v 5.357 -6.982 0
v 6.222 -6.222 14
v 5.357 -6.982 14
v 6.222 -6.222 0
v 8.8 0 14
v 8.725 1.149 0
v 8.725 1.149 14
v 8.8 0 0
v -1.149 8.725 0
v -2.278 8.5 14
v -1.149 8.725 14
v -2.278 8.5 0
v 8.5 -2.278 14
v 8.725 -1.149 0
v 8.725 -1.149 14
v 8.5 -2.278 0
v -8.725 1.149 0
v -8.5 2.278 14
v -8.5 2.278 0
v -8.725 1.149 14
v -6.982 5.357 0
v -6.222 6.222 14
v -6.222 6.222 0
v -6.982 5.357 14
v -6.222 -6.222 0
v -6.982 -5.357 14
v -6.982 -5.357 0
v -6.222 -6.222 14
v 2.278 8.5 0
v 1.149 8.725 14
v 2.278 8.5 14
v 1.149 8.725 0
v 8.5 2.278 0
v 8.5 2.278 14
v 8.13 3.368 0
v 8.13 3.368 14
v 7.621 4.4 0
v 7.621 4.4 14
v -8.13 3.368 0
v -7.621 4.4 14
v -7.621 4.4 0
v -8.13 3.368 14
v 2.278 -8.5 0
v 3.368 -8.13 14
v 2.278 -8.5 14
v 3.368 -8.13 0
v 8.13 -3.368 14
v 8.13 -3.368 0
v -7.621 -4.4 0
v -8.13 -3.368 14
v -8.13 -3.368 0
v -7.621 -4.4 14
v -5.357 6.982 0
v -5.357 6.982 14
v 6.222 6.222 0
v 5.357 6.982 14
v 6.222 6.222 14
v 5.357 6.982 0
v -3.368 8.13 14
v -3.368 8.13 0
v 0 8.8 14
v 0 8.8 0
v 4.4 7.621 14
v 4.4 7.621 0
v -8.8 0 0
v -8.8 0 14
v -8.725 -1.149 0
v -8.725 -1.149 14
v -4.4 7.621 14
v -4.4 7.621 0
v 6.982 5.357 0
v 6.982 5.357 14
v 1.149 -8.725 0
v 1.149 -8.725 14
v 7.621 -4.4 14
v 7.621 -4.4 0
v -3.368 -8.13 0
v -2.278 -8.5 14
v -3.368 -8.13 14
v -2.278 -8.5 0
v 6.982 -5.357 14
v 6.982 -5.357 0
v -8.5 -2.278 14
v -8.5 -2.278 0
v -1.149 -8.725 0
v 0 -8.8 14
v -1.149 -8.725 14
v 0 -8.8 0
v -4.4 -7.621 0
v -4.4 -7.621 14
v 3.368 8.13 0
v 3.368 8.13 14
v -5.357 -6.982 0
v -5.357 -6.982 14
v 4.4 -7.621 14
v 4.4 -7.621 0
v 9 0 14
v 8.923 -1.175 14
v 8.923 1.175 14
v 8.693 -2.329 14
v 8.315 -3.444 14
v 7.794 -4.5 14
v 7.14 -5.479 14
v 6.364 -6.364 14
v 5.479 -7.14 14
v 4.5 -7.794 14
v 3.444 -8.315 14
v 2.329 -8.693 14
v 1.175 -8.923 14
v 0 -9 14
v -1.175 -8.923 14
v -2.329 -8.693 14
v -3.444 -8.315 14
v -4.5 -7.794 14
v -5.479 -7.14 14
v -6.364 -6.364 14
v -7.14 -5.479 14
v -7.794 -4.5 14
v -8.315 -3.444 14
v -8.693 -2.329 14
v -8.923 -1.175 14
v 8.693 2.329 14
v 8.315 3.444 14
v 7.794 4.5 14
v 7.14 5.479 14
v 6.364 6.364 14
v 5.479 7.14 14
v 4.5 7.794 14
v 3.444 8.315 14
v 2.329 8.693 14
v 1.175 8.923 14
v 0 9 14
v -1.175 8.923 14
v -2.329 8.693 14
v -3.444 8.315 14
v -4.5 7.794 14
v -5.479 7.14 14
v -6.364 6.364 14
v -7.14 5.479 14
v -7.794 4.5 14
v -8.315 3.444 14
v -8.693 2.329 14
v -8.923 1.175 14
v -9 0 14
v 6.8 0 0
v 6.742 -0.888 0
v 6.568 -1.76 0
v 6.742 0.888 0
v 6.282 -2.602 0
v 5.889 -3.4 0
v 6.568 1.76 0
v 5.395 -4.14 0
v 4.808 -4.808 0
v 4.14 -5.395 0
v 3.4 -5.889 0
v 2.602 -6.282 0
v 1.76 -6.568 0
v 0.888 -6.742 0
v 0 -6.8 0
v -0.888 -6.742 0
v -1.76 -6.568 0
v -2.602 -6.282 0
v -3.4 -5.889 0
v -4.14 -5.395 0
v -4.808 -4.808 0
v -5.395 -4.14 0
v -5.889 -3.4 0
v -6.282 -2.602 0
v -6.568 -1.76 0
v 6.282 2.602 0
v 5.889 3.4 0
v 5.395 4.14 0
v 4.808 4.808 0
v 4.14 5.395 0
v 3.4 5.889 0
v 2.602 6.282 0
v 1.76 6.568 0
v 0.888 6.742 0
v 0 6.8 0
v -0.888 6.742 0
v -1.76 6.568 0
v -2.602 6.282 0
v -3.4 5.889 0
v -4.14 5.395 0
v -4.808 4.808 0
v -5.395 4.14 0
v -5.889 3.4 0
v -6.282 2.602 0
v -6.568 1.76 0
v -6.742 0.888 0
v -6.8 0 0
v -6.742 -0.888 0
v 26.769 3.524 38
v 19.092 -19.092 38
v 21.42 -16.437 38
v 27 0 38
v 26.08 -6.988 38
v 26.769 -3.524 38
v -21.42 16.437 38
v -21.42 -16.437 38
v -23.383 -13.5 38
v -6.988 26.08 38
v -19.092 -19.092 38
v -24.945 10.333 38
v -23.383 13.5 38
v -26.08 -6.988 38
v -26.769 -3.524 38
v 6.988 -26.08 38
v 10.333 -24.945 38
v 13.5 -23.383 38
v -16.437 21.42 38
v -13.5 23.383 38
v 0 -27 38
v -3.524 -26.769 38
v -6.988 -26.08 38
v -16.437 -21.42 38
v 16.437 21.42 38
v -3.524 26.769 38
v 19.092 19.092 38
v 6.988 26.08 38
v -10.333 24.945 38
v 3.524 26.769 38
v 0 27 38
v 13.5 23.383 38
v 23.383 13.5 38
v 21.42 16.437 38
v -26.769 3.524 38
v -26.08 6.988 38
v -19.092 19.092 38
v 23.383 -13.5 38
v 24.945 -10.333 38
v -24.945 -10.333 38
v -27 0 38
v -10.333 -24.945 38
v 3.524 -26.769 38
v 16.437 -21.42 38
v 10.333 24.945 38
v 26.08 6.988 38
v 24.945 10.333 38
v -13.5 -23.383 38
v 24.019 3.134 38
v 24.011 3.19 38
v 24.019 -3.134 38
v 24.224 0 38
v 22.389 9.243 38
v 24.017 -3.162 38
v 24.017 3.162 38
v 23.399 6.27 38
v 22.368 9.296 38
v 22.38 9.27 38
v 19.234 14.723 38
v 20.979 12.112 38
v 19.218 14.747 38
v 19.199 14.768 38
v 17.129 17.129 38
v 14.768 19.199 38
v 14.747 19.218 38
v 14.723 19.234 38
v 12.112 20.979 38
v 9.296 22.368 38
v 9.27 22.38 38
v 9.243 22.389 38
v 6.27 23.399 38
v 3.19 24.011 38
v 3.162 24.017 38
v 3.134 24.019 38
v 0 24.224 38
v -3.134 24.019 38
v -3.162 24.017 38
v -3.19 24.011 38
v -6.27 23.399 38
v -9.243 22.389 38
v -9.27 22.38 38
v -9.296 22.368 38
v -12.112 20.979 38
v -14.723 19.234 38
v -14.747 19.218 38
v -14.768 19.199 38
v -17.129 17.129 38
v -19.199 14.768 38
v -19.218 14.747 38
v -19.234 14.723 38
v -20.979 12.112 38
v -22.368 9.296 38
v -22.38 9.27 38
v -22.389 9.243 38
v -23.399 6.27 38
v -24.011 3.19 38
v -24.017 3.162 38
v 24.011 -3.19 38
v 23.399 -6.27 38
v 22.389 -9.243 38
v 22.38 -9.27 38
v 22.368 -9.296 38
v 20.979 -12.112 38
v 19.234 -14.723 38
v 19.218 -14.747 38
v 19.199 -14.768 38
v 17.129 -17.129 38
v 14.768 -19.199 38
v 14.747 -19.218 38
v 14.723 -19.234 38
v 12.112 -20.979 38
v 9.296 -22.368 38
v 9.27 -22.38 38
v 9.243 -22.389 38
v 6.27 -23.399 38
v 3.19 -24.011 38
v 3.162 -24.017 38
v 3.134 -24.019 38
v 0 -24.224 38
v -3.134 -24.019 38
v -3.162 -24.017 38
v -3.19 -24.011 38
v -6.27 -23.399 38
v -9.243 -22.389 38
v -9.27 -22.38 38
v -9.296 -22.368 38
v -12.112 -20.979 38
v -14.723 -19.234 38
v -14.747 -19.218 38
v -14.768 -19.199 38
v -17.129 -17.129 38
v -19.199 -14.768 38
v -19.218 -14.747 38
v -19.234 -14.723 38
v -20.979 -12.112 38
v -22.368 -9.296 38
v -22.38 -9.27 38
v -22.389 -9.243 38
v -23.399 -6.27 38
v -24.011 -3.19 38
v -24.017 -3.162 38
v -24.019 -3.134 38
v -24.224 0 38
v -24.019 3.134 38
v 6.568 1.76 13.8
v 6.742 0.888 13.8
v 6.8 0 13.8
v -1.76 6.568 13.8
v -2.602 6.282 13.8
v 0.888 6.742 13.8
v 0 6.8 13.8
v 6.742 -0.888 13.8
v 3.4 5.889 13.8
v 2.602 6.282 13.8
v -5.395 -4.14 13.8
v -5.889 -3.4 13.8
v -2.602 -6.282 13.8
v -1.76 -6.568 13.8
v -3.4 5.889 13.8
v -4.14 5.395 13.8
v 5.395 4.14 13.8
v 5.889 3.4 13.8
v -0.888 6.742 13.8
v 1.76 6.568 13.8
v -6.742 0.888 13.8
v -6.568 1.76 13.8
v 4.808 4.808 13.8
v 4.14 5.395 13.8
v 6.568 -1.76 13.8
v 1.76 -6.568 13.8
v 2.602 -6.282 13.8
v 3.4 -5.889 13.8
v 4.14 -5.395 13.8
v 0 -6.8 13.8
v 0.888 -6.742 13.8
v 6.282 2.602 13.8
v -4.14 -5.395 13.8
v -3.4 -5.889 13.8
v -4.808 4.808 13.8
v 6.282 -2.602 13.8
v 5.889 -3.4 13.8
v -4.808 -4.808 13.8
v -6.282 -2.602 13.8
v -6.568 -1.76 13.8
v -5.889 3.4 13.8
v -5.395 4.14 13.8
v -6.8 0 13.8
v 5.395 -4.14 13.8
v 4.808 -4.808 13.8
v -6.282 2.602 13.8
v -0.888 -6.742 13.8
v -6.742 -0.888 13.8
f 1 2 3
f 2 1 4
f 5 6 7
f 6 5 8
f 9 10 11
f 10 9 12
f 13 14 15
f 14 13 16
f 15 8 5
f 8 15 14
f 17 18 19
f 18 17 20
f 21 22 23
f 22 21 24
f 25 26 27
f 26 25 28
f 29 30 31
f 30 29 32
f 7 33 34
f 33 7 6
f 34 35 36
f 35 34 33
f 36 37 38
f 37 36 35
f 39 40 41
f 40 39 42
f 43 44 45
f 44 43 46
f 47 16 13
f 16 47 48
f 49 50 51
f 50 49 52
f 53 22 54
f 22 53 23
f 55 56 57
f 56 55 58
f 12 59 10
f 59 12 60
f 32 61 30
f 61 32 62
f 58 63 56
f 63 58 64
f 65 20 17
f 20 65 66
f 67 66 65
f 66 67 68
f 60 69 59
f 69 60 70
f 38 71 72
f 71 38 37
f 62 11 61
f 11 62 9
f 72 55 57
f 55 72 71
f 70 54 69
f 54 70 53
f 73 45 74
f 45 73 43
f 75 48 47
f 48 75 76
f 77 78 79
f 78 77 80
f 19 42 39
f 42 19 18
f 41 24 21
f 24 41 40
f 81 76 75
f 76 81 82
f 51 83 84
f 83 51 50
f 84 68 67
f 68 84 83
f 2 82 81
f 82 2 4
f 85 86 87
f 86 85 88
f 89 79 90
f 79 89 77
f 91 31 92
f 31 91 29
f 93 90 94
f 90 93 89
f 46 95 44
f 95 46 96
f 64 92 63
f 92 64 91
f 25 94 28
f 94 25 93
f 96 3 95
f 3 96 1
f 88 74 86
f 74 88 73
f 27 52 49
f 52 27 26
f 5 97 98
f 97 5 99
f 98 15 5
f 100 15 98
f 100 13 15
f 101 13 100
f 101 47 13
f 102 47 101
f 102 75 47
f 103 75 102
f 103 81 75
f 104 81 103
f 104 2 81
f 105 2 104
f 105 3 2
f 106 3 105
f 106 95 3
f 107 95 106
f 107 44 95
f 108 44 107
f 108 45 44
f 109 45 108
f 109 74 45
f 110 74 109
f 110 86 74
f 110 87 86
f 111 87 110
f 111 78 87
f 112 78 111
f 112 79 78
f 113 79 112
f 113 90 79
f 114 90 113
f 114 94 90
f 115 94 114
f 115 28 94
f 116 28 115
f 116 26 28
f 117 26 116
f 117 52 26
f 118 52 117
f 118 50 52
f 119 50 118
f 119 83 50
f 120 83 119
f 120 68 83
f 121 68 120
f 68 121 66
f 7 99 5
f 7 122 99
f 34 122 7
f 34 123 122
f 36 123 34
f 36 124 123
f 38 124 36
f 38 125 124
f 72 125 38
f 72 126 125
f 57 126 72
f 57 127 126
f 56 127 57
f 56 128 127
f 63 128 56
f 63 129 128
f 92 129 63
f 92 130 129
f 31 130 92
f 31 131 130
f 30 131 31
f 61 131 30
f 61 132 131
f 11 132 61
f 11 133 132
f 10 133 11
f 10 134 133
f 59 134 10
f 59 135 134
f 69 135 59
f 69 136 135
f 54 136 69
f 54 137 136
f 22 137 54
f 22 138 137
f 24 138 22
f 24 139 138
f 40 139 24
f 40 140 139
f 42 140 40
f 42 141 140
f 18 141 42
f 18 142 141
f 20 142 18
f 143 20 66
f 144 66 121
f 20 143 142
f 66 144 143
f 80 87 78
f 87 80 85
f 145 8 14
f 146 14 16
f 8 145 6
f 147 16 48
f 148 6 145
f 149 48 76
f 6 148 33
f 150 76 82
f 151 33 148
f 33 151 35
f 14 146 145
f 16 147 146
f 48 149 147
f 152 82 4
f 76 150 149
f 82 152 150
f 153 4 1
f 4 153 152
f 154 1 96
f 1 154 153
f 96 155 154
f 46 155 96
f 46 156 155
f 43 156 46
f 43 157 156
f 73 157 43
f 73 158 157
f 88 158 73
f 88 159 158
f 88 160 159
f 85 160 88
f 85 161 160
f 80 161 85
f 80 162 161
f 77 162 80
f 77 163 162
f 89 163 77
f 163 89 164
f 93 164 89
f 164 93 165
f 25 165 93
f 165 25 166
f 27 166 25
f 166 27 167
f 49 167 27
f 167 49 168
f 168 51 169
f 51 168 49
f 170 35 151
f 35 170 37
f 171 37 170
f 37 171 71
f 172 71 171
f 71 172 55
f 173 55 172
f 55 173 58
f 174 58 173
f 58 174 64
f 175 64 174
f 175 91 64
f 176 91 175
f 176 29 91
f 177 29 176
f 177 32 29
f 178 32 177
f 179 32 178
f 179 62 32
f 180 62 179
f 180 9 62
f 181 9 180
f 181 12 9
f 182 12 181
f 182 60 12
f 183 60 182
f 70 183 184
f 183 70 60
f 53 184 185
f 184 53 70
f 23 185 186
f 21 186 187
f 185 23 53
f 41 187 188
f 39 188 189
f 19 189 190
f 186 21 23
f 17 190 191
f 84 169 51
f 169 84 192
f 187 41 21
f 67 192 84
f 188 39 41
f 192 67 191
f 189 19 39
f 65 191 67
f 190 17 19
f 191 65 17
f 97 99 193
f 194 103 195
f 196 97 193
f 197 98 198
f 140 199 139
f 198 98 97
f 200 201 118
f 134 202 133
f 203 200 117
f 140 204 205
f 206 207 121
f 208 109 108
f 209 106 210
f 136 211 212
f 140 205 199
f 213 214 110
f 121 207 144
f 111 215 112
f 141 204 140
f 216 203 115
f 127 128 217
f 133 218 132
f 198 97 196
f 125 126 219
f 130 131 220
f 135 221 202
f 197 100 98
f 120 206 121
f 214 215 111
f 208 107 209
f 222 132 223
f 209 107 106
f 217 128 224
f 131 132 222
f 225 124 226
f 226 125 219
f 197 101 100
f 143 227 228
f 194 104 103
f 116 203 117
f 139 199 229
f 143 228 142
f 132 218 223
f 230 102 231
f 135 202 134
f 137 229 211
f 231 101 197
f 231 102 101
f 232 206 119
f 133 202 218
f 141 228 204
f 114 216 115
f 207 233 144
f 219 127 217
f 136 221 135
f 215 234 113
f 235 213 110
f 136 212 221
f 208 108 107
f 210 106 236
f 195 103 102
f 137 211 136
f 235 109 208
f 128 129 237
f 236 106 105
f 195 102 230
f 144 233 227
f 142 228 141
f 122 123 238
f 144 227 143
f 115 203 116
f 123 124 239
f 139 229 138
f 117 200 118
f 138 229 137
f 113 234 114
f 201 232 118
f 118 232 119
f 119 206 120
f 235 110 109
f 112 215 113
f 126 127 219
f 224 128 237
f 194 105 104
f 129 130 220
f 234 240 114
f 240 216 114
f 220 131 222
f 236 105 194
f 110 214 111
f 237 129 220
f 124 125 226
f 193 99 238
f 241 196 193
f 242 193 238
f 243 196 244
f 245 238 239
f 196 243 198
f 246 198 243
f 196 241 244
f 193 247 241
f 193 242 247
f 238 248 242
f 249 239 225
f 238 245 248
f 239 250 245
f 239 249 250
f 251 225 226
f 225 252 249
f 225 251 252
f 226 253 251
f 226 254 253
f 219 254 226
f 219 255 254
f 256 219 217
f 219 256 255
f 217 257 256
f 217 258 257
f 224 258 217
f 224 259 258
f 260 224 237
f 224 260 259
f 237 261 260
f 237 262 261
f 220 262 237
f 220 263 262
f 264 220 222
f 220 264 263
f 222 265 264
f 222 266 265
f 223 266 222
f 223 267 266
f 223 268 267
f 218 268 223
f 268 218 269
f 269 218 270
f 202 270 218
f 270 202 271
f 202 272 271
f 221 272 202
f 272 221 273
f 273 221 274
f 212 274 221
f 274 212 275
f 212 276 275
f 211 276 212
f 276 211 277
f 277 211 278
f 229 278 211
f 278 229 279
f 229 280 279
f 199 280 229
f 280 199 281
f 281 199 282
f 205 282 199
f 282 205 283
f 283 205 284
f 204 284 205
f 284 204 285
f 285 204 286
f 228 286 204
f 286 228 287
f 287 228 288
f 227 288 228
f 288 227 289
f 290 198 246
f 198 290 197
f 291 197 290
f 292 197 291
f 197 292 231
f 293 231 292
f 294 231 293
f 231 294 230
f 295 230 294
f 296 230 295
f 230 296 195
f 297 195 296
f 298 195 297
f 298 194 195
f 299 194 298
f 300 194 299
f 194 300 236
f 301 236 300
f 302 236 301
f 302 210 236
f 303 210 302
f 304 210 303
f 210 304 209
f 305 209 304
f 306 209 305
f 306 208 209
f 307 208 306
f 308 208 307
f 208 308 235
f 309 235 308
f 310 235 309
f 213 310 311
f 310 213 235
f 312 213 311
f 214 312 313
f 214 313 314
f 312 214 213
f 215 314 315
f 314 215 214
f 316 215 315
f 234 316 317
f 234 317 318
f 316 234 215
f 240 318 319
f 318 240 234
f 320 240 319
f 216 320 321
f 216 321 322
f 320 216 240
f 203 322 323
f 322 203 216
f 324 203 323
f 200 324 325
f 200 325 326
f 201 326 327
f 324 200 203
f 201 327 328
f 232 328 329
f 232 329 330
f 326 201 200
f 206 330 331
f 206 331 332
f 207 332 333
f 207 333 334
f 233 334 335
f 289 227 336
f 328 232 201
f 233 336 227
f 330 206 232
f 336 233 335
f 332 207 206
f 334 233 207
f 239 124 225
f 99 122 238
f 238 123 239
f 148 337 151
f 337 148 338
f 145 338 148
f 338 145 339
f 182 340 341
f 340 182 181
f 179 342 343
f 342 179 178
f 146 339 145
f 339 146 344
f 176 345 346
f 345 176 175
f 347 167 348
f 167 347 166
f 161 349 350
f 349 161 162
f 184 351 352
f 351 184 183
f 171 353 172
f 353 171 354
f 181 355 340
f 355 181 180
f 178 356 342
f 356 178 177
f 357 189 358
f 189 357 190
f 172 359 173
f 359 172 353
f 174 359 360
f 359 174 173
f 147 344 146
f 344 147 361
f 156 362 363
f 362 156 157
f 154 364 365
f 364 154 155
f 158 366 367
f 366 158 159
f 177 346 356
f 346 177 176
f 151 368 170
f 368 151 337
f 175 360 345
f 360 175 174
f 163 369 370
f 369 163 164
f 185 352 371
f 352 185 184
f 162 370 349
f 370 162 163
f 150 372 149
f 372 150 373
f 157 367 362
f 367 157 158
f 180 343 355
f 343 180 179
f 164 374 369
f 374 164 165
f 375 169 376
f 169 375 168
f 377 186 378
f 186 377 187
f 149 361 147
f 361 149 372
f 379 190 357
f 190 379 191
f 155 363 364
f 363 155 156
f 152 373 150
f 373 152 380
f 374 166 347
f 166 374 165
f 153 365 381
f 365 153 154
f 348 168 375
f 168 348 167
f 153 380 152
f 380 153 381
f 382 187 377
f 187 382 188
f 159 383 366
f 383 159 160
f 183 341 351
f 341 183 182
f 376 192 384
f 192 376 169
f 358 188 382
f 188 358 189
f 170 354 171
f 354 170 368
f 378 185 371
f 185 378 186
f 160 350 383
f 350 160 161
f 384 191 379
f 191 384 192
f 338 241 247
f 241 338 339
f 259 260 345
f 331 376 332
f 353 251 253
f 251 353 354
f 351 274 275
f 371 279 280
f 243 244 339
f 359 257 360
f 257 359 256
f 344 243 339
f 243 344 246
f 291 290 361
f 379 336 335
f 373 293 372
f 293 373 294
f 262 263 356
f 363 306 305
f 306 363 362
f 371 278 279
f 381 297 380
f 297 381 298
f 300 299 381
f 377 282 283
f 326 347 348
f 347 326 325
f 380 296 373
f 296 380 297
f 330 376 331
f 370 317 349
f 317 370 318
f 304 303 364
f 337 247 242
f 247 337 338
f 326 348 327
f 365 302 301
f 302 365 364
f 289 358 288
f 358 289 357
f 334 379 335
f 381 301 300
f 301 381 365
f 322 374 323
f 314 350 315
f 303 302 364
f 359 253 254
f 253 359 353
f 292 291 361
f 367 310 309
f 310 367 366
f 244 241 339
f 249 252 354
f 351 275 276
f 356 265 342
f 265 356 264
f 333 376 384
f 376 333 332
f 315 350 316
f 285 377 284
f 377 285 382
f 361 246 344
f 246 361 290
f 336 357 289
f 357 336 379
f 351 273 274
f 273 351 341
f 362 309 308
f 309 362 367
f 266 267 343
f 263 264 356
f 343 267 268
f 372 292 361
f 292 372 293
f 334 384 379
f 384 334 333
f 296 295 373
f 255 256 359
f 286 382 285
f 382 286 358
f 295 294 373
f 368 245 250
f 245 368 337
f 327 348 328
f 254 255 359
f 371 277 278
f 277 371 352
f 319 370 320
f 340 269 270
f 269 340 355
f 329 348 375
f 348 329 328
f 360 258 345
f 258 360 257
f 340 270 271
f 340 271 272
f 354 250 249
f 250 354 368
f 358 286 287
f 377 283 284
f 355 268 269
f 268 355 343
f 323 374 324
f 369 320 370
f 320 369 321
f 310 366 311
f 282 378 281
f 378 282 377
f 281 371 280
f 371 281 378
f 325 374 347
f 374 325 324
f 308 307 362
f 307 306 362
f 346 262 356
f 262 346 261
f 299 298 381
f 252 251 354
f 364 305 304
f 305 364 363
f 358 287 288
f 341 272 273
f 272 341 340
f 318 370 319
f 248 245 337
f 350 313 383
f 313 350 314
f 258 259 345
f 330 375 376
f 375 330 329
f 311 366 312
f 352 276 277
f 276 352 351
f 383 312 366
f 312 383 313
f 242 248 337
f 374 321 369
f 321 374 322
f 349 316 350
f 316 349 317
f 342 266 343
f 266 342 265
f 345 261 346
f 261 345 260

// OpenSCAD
// ============================================================================
// Get Me An Alt — Parametric OpenSCAD Module
// Part: PRT-04 — Wide-Mouth Top Refill Funnel (refill-funnel)
// Function: Fits into the 22mm corner port on the reservoir lid for easy refilling.
// Target Bounding Box (mm): [54, 54, 38]
// Print Material: PLA | Min Wall: >= 1.6mm | Tolerance: 0.2mm
// ============================================================================
$fn = 48;
part_width = 54;
part_depth = 54;
part_height = 38;
wall_thickness = 2.2;
floor_thickness = 2.2;
corner_radius = 4;
tolerance = 0.2;
m3_clearance_d = 3.4; // M3 screw clearance hole (3.0mm + 2*0.2mm)

module rounded_rect_prism(w, d, h, r) {
  cr = max(0.5, min(r, min(w, d) / 2 - 0.1));
  linear_extrude(height = h)
    offset(r = cr)
      offset(r = -cr)
        square([w, d], center = true);
}

module part_refill_funnel() {
  difference() {
    union() {
      // Lower insertion spout
      cylinder(h = 14, r = 9 - tolerance);
      // Upper conical funnel body
      translate([0, 0, 14])
        cylinder(h = 24, r1 = 9, r2 = 27);
    }
    // Hollow internal flow passage
    translate([0, 0, -0.5])
      cylinder(h = 15, r = 6.8);
    translate([0, 0, 13.8])
      cylinder(h = 25, r1 = 6.8, r2 = 24.8);
  }
}

part_refill_funnel();
